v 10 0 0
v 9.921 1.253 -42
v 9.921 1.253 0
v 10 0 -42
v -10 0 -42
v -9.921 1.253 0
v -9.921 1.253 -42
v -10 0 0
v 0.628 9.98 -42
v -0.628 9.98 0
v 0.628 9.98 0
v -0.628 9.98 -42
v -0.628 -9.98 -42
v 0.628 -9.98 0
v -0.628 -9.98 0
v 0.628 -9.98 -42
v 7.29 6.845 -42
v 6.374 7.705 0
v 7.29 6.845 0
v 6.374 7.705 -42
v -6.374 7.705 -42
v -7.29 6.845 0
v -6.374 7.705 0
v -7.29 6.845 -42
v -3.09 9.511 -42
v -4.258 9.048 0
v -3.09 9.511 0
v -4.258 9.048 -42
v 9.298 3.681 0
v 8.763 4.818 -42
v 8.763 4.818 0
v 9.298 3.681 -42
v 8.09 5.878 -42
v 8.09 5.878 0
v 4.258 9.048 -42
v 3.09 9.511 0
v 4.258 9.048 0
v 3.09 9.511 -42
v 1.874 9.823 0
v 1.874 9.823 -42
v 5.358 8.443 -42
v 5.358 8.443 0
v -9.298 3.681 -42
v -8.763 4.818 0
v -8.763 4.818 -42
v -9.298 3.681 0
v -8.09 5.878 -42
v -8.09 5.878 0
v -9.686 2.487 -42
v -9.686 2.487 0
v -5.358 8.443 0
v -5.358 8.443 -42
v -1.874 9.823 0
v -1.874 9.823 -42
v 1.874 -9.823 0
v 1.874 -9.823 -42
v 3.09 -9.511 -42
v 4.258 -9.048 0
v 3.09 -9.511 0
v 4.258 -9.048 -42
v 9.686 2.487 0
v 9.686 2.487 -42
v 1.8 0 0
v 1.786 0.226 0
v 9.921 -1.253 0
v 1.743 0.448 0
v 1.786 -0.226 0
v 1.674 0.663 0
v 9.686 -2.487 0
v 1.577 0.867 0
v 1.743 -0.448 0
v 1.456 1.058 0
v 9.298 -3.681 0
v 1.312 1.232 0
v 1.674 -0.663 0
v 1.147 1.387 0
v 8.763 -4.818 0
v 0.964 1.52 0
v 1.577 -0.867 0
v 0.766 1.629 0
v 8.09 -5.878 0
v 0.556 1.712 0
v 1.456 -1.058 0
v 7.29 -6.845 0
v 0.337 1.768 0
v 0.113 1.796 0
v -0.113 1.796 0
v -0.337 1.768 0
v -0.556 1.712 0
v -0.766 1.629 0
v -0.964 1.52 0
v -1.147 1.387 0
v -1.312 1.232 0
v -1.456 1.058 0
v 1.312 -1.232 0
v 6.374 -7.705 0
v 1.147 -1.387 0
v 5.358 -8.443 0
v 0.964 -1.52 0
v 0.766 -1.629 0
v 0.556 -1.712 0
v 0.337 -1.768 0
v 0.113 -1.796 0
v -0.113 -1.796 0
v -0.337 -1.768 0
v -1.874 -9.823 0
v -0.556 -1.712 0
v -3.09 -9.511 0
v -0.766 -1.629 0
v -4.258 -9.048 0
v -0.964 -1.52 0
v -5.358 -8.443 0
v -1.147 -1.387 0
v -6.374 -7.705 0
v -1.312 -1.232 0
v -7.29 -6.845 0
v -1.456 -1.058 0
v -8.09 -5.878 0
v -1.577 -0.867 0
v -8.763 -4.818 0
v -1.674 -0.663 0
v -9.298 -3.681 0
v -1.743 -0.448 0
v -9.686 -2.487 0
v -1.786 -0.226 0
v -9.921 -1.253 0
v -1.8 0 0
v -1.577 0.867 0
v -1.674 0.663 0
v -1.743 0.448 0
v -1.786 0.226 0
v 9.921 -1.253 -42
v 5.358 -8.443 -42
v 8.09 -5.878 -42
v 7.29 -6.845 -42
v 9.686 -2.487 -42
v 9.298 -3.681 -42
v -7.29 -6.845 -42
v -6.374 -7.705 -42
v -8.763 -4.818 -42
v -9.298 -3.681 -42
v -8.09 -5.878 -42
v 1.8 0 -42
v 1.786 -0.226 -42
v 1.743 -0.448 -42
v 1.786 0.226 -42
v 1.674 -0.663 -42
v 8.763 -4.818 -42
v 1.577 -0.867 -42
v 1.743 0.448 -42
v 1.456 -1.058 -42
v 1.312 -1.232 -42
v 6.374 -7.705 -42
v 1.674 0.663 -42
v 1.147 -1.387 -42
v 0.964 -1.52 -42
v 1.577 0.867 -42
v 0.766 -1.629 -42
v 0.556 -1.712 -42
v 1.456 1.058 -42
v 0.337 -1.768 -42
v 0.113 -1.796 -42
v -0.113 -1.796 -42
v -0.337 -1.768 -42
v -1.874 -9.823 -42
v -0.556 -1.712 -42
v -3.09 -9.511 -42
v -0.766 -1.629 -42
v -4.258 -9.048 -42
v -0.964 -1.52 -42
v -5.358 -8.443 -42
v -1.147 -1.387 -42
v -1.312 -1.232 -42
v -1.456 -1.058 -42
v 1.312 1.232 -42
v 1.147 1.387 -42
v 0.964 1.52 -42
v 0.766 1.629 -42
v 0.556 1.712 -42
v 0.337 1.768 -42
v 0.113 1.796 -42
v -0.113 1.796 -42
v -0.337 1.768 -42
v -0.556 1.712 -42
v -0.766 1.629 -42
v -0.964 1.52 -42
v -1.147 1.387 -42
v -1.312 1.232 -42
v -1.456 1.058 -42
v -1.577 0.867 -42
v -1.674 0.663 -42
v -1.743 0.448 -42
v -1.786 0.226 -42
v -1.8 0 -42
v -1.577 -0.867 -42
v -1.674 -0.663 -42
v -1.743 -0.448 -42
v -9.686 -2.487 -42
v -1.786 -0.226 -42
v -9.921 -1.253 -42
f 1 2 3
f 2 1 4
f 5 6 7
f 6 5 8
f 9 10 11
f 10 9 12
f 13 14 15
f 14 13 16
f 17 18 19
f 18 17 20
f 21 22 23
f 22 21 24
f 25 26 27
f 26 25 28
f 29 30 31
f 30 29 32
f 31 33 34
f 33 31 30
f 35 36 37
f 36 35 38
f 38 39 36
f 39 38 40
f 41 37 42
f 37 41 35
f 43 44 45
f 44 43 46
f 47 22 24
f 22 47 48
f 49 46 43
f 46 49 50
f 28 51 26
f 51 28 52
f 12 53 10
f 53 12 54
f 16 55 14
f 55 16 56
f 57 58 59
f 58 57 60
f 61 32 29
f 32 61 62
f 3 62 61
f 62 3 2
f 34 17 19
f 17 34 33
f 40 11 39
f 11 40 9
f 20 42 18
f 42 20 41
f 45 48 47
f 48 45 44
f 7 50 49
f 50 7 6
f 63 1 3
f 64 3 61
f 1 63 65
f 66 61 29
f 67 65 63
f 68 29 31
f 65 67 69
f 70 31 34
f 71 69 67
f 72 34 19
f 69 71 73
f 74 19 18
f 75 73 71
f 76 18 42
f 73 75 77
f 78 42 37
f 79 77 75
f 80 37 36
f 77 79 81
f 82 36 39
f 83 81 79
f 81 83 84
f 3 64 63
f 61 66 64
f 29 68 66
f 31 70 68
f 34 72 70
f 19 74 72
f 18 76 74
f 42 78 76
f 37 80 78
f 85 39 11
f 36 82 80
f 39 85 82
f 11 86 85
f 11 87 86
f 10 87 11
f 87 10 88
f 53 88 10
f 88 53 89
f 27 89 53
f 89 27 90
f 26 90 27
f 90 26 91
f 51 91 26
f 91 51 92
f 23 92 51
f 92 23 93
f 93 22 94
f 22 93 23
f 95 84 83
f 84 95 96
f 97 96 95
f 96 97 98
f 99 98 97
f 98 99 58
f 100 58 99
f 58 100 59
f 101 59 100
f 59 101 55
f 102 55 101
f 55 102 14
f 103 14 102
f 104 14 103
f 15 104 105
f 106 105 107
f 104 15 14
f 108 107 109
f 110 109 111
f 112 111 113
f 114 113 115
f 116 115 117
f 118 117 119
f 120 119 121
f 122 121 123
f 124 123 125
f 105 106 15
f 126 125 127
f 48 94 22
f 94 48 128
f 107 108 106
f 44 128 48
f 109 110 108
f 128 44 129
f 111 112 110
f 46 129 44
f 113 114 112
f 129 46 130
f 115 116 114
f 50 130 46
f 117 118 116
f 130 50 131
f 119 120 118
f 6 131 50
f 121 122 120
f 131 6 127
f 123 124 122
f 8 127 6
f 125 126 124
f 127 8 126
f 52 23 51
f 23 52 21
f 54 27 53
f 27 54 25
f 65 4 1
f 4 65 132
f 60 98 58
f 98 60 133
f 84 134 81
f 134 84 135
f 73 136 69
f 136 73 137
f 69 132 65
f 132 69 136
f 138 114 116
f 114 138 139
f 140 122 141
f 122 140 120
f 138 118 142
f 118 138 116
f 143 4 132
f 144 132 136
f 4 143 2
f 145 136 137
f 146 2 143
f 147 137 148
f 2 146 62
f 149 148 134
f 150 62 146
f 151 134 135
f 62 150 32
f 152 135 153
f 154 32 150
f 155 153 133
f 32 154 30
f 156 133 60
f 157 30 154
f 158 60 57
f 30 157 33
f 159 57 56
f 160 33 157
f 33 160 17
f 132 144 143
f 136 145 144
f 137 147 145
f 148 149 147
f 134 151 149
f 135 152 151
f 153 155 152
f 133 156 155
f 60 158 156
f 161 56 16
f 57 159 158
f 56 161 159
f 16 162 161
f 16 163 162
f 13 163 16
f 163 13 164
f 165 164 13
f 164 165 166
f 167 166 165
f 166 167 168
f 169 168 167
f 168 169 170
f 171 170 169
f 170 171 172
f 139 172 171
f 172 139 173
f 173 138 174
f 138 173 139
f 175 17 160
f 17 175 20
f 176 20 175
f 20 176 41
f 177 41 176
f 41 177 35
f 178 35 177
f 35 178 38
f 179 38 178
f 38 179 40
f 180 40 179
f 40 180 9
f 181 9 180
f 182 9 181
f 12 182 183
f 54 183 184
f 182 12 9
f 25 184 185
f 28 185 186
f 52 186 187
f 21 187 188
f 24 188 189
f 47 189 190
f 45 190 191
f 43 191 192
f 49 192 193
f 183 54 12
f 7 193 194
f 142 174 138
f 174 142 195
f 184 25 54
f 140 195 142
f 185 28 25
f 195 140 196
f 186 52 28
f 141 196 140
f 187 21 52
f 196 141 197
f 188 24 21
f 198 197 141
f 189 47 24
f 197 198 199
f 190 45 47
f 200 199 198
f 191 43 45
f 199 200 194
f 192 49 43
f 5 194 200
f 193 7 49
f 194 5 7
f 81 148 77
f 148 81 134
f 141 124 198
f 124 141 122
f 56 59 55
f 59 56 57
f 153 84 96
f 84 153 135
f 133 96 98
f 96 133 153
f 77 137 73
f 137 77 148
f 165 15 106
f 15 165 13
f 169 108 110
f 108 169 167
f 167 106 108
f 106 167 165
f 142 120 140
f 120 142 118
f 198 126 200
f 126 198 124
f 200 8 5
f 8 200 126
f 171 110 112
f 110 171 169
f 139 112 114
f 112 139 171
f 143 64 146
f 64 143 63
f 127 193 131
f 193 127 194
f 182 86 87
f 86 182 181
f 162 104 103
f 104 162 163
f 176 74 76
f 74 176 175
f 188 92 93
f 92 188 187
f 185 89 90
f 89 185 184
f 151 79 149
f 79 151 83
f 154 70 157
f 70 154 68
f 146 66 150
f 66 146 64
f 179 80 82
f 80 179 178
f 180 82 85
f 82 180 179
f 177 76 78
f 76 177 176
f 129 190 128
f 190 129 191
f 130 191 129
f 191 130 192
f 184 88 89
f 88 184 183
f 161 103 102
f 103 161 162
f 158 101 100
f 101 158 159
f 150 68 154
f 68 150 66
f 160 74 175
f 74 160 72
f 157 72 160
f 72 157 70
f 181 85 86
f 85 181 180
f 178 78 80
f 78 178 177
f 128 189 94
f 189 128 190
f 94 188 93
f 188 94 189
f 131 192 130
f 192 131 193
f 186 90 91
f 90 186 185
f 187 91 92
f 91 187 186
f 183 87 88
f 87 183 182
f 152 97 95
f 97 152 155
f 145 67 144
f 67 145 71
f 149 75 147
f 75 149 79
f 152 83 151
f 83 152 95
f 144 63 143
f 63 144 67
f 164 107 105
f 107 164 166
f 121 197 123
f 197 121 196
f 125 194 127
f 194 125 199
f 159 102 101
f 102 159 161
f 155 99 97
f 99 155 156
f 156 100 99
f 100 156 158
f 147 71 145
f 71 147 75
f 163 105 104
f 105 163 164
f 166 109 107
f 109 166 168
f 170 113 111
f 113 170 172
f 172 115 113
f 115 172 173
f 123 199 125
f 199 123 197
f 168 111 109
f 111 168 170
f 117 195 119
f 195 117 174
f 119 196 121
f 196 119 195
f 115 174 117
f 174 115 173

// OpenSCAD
$fn = 50;


difference() {
	union() {
		translate(v = [0, 0, -42.0000000000]) {
			cylinder(h = 42, r = 10.0000000000);
		}
		cylinder(h = 0, r = 20.0000000000);
	}
	union() {
		#translate(v = [0, 0, -42]) {
			cylinder(h = 42, r = 1.8000000000);
		}
	}
}
